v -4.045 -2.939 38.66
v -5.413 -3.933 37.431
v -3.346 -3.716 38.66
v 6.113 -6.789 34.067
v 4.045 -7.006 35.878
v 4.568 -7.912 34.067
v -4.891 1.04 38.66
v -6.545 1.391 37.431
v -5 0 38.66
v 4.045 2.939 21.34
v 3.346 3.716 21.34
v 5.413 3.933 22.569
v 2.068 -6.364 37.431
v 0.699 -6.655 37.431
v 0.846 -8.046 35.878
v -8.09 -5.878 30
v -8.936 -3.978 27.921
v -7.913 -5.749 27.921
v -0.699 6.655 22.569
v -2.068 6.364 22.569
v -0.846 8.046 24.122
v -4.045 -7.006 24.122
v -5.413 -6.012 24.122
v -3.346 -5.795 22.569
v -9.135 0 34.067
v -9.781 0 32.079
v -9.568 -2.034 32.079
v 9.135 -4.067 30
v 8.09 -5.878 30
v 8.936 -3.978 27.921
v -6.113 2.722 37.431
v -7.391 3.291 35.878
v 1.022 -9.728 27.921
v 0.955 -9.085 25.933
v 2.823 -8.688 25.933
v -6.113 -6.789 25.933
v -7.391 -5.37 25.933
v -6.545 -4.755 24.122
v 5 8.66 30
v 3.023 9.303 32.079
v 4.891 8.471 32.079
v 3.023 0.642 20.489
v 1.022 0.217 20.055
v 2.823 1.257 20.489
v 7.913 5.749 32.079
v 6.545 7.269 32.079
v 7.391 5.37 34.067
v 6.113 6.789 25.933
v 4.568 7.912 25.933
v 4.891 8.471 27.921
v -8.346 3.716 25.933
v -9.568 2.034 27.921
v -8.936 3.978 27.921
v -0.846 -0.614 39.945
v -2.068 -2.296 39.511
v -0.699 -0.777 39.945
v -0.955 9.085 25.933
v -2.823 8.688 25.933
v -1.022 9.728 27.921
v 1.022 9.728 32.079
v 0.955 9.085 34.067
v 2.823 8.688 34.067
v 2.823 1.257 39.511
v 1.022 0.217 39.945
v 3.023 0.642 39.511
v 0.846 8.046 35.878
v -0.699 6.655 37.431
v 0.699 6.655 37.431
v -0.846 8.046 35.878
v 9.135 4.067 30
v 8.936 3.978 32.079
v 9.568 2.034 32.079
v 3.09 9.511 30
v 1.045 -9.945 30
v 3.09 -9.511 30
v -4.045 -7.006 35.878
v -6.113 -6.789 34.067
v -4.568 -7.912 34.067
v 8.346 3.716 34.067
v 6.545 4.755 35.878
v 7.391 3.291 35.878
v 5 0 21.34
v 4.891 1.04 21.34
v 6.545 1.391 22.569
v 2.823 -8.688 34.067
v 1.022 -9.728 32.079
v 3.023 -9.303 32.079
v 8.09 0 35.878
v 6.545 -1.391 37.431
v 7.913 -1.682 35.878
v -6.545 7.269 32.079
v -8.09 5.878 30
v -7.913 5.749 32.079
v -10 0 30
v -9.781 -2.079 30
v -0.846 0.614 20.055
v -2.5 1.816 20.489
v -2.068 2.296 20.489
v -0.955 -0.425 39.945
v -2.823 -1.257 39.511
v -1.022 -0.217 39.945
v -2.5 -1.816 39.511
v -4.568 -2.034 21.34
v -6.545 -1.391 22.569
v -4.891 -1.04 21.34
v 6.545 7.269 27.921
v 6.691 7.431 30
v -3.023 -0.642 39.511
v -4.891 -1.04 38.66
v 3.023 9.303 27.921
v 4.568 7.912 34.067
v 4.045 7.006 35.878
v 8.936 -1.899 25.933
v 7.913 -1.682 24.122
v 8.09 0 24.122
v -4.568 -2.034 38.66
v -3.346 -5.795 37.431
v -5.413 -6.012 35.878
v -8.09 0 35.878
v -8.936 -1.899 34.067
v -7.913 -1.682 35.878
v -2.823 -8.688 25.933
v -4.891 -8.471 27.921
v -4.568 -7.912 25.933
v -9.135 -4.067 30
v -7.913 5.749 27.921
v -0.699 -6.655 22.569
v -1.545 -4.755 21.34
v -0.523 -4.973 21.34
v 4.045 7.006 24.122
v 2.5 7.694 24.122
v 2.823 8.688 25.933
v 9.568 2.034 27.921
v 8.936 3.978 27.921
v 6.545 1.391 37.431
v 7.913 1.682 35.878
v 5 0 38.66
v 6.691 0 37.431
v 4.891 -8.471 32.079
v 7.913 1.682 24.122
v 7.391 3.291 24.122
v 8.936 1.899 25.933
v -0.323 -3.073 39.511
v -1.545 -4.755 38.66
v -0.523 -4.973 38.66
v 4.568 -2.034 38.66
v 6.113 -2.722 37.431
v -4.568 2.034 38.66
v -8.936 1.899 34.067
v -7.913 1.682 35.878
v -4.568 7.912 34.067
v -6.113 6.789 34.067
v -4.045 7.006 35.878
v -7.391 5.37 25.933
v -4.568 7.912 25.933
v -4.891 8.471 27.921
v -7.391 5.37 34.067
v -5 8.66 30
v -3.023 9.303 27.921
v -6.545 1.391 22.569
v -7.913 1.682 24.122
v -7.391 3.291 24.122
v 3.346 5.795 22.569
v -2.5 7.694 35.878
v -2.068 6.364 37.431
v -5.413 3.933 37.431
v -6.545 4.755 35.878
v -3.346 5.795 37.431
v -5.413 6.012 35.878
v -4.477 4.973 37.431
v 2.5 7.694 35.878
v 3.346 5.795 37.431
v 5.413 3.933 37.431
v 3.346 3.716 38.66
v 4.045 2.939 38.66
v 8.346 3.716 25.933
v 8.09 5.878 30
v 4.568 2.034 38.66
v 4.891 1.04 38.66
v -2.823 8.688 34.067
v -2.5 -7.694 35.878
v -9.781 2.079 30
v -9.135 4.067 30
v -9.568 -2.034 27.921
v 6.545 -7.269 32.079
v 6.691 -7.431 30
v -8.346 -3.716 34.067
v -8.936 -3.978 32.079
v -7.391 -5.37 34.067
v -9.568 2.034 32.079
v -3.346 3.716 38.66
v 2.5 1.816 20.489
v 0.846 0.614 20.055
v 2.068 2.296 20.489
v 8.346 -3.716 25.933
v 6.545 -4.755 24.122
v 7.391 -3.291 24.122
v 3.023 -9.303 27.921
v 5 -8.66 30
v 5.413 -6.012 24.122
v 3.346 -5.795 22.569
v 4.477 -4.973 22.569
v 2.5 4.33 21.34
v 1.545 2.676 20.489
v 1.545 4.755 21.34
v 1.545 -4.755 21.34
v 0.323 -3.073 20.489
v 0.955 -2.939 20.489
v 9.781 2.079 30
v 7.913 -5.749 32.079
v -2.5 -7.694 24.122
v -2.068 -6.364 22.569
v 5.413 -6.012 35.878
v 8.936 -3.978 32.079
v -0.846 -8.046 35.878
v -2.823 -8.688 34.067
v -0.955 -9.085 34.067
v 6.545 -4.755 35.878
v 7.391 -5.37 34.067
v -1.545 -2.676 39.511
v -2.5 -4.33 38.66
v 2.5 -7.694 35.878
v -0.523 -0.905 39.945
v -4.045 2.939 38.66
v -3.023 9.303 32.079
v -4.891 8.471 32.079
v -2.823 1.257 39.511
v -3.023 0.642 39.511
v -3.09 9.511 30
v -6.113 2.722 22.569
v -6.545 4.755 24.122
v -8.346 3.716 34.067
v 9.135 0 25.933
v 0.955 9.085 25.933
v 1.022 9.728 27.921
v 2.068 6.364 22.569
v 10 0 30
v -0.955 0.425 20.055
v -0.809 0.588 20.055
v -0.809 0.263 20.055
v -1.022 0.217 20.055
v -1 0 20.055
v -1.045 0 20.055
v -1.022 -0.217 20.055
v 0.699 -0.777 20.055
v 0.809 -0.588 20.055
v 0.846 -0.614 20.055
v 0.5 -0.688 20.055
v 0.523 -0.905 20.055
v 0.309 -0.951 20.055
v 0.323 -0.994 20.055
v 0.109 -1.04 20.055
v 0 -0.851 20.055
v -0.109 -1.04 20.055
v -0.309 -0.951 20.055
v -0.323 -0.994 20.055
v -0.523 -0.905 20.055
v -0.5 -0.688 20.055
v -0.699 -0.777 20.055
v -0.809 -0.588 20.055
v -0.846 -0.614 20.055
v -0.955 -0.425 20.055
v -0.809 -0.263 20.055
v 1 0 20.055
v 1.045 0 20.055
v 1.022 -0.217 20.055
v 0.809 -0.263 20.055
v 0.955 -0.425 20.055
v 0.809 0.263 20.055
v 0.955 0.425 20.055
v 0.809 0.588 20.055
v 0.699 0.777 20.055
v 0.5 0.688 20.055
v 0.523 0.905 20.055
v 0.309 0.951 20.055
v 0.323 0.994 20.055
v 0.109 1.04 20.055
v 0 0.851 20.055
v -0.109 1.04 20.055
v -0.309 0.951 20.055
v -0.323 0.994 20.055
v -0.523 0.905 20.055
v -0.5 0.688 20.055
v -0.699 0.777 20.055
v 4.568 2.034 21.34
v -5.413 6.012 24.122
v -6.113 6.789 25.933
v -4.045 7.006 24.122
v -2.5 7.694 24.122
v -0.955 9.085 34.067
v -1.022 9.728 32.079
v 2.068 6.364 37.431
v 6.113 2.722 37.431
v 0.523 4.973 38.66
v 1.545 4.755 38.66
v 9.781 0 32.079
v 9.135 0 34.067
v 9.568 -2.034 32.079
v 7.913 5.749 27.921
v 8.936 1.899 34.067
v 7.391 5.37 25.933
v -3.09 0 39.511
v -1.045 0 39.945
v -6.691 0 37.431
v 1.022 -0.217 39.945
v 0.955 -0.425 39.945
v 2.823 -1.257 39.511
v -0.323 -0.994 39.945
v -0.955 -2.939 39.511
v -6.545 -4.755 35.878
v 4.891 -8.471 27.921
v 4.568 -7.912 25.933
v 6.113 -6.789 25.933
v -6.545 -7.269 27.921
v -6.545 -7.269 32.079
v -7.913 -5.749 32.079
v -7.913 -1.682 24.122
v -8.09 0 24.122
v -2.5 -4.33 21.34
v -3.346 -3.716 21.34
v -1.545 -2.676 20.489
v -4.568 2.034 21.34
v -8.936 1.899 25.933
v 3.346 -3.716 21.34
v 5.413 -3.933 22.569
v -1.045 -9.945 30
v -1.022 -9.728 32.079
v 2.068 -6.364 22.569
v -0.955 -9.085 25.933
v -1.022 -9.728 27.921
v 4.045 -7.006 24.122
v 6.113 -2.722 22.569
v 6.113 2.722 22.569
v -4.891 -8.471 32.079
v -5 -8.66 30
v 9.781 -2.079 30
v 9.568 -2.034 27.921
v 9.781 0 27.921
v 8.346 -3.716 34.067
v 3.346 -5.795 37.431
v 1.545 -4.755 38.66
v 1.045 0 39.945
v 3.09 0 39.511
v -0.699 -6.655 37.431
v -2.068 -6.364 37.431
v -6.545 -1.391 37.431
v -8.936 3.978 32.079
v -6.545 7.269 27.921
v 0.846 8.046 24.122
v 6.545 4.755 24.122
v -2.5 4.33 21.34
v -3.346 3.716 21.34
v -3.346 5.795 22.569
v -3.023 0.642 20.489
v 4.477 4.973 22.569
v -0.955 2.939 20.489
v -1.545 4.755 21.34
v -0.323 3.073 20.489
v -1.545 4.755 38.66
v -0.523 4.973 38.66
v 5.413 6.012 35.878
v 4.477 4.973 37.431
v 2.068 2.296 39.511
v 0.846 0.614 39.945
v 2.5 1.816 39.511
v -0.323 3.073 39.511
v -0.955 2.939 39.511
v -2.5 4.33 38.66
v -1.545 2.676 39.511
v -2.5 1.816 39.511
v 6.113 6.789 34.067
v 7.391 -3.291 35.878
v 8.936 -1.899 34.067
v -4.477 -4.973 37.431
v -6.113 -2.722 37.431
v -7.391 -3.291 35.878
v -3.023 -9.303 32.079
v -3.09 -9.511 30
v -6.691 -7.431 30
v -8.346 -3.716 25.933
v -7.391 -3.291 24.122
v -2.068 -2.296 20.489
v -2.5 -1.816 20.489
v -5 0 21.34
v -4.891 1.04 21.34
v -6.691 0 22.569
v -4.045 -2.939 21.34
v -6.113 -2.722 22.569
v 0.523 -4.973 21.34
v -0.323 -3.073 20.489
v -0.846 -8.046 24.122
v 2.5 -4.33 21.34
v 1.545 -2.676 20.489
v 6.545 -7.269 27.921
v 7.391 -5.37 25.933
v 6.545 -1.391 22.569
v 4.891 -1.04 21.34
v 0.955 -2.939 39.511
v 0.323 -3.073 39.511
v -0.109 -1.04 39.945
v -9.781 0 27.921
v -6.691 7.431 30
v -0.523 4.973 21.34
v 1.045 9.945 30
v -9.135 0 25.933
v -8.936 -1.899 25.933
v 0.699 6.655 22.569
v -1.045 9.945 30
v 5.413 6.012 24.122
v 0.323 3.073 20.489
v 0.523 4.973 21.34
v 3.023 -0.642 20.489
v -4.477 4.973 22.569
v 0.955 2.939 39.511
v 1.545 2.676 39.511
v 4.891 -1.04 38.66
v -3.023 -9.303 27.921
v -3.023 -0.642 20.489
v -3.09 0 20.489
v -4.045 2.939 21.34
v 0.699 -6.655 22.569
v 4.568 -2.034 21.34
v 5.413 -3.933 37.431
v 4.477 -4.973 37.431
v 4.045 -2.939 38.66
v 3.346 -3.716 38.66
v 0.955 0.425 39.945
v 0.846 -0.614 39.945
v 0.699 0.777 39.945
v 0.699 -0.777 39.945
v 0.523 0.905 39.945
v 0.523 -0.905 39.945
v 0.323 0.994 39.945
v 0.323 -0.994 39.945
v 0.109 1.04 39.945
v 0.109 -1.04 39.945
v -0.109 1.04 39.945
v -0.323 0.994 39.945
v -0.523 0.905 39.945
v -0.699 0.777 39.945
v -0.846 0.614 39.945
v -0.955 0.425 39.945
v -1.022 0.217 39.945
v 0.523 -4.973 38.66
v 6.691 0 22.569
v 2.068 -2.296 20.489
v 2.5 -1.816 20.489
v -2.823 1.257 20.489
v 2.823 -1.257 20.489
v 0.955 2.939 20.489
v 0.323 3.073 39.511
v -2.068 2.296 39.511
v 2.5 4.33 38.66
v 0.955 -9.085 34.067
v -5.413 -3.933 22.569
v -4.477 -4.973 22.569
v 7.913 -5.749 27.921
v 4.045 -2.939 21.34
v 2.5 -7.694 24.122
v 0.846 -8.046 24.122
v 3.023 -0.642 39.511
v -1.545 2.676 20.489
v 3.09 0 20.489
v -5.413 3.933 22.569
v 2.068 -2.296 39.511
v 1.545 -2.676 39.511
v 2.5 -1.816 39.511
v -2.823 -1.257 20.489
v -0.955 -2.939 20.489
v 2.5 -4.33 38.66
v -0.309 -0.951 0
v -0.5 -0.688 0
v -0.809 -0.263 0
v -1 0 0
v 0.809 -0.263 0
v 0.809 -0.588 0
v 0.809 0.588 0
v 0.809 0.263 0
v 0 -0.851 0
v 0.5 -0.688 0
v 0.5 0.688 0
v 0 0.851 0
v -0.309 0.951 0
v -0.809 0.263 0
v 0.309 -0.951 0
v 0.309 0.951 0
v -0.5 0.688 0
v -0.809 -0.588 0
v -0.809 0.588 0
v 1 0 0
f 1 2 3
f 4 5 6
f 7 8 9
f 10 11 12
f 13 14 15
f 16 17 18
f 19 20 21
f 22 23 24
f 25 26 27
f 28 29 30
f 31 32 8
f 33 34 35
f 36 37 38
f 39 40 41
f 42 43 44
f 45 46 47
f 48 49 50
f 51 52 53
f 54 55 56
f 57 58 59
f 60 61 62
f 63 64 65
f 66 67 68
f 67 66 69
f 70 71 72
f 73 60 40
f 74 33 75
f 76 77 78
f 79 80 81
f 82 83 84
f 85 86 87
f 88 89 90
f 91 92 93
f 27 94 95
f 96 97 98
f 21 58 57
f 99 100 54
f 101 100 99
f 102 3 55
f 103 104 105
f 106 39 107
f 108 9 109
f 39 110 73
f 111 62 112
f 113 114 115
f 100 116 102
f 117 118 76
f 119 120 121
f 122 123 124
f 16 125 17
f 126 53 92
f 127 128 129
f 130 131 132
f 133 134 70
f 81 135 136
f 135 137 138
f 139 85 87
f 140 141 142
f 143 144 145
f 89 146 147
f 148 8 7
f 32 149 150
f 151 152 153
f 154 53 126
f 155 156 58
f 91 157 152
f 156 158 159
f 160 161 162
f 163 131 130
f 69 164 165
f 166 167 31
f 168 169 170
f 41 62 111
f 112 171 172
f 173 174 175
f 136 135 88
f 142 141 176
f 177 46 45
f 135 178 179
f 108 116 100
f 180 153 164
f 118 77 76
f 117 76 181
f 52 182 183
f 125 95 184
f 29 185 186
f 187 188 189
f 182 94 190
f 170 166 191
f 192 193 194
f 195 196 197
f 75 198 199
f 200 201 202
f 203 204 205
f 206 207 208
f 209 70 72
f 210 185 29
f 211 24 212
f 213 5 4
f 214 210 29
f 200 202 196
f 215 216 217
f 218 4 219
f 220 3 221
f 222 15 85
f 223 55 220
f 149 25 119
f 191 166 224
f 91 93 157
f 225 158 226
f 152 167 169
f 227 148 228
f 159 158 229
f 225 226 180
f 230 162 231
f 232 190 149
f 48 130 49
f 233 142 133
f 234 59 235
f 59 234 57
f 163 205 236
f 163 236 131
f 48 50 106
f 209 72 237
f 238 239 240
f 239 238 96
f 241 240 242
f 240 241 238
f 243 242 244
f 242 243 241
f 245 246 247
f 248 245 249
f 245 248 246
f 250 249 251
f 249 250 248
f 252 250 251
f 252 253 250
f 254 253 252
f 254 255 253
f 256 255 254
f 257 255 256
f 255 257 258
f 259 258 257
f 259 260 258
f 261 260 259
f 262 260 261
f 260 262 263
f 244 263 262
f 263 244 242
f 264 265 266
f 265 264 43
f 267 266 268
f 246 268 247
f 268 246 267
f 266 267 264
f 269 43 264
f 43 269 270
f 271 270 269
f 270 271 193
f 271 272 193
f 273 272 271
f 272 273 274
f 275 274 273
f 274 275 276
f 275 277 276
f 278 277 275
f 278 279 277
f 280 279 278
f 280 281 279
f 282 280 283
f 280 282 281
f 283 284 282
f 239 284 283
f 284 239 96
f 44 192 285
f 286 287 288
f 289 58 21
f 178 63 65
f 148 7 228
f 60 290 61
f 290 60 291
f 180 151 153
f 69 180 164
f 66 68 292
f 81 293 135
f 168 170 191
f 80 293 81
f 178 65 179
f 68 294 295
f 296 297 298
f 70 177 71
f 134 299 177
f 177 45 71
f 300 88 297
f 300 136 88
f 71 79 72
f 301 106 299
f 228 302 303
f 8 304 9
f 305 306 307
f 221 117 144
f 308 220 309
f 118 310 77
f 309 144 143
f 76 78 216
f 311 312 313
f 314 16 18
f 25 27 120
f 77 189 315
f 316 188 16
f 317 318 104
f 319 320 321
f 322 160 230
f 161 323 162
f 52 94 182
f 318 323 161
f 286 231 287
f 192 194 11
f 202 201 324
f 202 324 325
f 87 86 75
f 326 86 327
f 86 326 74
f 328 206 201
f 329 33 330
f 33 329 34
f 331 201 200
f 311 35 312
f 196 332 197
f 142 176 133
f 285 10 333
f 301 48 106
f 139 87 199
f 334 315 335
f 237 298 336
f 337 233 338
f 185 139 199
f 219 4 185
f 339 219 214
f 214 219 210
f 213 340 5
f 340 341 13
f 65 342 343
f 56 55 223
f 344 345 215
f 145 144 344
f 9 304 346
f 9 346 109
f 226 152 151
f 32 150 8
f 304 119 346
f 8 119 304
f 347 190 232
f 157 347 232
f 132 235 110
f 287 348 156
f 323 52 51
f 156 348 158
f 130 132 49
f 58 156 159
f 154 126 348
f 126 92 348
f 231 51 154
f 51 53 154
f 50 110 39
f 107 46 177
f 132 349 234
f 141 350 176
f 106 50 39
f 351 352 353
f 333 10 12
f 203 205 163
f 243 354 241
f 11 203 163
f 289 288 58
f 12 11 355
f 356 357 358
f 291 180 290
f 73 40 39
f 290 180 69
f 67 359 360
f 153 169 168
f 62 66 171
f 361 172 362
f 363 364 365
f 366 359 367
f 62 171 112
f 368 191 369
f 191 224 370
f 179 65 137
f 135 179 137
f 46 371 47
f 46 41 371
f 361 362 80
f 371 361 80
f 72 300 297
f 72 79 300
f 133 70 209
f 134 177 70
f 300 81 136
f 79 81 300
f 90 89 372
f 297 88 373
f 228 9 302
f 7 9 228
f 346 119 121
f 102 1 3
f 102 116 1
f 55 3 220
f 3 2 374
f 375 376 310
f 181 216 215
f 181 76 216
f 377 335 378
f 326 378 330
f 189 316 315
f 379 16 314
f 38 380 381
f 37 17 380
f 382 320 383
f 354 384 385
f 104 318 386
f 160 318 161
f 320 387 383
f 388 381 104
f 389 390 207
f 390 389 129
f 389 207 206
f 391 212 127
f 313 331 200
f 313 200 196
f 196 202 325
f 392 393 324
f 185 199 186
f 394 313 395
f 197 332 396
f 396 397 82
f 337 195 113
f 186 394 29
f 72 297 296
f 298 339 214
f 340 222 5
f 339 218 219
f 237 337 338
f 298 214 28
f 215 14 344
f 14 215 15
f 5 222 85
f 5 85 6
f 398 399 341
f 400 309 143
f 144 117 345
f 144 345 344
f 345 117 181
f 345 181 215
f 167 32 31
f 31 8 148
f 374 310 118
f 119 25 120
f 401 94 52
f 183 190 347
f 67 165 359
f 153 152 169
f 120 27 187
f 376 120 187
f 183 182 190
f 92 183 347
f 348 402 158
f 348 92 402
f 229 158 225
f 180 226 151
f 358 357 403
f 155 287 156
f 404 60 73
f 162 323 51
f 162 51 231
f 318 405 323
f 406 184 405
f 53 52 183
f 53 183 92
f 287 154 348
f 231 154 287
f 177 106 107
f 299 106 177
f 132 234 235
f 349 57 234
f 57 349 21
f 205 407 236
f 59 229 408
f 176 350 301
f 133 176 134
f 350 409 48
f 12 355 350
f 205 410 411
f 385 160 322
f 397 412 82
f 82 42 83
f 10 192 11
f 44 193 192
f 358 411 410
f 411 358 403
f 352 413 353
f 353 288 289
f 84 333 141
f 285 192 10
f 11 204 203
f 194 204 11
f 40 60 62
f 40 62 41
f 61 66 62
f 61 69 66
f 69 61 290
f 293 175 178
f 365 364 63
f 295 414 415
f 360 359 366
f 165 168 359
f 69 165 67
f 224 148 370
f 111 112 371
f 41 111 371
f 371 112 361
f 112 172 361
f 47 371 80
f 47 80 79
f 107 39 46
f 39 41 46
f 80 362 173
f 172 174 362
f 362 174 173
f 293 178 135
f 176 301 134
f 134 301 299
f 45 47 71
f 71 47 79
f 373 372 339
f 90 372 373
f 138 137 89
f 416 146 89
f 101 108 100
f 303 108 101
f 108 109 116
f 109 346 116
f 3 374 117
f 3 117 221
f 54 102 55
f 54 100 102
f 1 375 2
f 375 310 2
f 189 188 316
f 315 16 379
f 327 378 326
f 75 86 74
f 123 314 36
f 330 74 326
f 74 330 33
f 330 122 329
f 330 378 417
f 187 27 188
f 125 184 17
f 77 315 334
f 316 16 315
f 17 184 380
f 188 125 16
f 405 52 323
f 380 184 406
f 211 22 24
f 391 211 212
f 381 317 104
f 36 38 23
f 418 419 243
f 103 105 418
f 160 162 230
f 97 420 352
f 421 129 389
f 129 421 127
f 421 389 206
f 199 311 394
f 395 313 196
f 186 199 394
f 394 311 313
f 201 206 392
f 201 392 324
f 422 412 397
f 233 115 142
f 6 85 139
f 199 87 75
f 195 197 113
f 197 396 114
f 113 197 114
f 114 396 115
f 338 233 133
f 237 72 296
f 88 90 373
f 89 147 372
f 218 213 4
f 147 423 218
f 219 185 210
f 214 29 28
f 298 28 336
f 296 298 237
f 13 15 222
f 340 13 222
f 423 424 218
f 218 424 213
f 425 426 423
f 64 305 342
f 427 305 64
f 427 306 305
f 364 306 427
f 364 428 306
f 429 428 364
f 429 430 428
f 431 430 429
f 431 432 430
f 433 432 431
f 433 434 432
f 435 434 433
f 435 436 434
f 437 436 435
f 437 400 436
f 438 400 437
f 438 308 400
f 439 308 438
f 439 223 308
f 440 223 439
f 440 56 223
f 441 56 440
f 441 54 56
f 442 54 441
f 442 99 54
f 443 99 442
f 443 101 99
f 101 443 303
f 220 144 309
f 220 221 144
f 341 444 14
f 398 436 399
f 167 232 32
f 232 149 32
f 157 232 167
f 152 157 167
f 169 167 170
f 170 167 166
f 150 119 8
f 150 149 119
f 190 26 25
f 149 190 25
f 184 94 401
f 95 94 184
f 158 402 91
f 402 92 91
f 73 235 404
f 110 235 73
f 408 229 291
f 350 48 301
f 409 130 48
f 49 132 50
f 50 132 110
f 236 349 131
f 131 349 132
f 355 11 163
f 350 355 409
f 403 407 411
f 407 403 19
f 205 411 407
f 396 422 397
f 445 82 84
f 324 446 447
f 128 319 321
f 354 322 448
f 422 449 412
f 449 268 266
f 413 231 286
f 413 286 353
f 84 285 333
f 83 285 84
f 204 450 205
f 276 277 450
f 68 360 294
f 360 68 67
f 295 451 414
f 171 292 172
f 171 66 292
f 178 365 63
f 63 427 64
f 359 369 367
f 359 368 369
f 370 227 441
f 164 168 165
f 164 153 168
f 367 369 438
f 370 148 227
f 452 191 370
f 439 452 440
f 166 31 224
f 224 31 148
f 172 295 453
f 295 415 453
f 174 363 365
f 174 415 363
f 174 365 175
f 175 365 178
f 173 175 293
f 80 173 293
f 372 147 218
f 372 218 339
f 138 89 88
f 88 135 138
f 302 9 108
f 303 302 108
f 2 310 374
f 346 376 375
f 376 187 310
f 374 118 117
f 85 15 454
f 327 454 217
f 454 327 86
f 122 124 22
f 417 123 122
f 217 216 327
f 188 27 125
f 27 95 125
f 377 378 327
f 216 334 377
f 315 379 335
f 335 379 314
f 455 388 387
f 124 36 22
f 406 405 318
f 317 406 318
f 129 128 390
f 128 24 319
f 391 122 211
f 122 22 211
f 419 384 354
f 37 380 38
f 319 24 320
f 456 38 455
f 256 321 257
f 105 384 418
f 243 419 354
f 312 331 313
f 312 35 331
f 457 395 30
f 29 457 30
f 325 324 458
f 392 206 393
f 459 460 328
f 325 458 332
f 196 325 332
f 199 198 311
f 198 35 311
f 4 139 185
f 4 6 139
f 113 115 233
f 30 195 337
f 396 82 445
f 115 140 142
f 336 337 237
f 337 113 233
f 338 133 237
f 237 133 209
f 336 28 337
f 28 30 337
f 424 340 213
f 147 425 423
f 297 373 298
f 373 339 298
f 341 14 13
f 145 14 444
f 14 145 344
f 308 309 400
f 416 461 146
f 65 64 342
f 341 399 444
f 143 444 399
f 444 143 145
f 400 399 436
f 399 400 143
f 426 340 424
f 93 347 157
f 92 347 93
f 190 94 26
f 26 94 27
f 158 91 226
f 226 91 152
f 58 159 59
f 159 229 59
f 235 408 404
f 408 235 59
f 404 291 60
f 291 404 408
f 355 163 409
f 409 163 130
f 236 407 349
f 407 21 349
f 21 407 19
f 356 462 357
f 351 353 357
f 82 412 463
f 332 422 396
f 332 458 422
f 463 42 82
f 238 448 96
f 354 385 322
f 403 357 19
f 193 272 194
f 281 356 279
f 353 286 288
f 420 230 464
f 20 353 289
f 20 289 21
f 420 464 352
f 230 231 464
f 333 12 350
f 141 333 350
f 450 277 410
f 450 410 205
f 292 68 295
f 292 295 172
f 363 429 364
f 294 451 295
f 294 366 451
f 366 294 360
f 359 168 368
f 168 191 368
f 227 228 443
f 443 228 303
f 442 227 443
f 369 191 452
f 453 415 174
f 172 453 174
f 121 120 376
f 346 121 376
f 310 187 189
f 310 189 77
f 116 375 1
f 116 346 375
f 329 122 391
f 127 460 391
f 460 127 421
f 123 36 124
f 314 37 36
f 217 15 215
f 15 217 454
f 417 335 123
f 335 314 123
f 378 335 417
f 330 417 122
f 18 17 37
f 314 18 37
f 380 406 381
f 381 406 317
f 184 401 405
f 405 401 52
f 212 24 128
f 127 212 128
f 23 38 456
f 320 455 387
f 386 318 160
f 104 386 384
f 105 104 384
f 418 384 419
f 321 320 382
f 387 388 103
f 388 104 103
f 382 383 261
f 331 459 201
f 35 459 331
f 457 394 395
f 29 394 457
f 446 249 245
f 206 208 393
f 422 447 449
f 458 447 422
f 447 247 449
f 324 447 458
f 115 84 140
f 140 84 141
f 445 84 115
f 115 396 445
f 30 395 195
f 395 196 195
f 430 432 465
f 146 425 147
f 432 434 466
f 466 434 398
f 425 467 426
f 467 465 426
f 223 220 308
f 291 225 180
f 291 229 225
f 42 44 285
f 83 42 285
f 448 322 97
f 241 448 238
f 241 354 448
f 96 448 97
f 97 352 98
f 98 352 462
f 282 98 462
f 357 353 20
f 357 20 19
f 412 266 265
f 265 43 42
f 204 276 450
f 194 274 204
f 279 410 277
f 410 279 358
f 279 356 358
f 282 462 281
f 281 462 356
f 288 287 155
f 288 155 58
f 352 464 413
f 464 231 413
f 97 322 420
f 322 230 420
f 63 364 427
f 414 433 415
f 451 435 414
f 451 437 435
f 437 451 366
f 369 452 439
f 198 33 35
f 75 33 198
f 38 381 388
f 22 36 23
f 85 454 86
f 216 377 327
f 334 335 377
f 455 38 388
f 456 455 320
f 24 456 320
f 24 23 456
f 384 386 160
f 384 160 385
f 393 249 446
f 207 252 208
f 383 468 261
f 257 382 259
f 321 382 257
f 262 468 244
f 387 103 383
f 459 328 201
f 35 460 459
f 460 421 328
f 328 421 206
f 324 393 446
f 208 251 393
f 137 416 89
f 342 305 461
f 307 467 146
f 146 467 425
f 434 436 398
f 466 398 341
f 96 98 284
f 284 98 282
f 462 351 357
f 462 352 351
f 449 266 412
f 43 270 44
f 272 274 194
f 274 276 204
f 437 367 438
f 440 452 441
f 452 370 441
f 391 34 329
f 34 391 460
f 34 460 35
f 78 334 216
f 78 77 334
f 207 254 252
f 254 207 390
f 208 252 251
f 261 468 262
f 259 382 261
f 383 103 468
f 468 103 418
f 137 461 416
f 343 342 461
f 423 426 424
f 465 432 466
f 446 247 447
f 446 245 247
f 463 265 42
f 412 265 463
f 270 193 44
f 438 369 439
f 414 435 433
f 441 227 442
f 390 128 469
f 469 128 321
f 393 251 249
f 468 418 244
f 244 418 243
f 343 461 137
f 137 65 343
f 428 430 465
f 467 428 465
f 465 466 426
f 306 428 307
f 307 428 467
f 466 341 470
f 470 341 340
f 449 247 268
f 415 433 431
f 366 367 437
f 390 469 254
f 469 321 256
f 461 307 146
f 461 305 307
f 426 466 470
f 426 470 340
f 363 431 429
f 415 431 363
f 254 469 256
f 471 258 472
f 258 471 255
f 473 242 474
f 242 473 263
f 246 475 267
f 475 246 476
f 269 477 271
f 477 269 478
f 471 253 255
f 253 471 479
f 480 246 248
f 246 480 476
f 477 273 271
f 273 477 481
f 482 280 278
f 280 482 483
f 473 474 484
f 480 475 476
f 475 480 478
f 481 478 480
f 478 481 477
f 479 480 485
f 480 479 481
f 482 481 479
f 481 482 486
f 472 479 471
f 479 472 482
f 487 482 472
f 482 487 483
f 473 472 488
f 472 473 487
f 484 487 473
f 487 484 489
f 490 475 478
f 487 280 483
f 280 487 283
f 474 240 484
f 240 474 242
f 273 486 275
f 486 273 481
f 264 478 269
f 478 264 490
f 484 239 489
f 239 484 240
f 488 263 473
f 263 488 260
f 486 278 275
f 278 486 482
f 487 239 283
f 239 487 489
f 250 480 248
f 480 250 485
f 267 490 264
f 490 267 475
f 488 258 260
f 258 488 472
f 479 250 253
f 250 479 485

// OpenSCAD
module cherry(diameter) {
    sphere(d=diameter);
}

module stem(length, diameter) {
    cylinder(h=length, d=diameter);
}

module connected_cherries() {
    cherry_diameter = 20;
    stem_length = 30;
    stem_diameter = 2;
    stem_angle = 180;
    
    // First cherry and stem
    translate([0, 0, stem_length]) {
        cherry(cherry_diameter);
    }
    stem(stem_length, stem_diameter);
    
    // Second cherry and stem
    rotate([0, 0, stem_angle]) {
        translate([0, 0, stem_length]) {
            cherry(cherry_diameter);
        }
        stem(stem_length, stem_diameter);
    }
}

connected_cherries();
